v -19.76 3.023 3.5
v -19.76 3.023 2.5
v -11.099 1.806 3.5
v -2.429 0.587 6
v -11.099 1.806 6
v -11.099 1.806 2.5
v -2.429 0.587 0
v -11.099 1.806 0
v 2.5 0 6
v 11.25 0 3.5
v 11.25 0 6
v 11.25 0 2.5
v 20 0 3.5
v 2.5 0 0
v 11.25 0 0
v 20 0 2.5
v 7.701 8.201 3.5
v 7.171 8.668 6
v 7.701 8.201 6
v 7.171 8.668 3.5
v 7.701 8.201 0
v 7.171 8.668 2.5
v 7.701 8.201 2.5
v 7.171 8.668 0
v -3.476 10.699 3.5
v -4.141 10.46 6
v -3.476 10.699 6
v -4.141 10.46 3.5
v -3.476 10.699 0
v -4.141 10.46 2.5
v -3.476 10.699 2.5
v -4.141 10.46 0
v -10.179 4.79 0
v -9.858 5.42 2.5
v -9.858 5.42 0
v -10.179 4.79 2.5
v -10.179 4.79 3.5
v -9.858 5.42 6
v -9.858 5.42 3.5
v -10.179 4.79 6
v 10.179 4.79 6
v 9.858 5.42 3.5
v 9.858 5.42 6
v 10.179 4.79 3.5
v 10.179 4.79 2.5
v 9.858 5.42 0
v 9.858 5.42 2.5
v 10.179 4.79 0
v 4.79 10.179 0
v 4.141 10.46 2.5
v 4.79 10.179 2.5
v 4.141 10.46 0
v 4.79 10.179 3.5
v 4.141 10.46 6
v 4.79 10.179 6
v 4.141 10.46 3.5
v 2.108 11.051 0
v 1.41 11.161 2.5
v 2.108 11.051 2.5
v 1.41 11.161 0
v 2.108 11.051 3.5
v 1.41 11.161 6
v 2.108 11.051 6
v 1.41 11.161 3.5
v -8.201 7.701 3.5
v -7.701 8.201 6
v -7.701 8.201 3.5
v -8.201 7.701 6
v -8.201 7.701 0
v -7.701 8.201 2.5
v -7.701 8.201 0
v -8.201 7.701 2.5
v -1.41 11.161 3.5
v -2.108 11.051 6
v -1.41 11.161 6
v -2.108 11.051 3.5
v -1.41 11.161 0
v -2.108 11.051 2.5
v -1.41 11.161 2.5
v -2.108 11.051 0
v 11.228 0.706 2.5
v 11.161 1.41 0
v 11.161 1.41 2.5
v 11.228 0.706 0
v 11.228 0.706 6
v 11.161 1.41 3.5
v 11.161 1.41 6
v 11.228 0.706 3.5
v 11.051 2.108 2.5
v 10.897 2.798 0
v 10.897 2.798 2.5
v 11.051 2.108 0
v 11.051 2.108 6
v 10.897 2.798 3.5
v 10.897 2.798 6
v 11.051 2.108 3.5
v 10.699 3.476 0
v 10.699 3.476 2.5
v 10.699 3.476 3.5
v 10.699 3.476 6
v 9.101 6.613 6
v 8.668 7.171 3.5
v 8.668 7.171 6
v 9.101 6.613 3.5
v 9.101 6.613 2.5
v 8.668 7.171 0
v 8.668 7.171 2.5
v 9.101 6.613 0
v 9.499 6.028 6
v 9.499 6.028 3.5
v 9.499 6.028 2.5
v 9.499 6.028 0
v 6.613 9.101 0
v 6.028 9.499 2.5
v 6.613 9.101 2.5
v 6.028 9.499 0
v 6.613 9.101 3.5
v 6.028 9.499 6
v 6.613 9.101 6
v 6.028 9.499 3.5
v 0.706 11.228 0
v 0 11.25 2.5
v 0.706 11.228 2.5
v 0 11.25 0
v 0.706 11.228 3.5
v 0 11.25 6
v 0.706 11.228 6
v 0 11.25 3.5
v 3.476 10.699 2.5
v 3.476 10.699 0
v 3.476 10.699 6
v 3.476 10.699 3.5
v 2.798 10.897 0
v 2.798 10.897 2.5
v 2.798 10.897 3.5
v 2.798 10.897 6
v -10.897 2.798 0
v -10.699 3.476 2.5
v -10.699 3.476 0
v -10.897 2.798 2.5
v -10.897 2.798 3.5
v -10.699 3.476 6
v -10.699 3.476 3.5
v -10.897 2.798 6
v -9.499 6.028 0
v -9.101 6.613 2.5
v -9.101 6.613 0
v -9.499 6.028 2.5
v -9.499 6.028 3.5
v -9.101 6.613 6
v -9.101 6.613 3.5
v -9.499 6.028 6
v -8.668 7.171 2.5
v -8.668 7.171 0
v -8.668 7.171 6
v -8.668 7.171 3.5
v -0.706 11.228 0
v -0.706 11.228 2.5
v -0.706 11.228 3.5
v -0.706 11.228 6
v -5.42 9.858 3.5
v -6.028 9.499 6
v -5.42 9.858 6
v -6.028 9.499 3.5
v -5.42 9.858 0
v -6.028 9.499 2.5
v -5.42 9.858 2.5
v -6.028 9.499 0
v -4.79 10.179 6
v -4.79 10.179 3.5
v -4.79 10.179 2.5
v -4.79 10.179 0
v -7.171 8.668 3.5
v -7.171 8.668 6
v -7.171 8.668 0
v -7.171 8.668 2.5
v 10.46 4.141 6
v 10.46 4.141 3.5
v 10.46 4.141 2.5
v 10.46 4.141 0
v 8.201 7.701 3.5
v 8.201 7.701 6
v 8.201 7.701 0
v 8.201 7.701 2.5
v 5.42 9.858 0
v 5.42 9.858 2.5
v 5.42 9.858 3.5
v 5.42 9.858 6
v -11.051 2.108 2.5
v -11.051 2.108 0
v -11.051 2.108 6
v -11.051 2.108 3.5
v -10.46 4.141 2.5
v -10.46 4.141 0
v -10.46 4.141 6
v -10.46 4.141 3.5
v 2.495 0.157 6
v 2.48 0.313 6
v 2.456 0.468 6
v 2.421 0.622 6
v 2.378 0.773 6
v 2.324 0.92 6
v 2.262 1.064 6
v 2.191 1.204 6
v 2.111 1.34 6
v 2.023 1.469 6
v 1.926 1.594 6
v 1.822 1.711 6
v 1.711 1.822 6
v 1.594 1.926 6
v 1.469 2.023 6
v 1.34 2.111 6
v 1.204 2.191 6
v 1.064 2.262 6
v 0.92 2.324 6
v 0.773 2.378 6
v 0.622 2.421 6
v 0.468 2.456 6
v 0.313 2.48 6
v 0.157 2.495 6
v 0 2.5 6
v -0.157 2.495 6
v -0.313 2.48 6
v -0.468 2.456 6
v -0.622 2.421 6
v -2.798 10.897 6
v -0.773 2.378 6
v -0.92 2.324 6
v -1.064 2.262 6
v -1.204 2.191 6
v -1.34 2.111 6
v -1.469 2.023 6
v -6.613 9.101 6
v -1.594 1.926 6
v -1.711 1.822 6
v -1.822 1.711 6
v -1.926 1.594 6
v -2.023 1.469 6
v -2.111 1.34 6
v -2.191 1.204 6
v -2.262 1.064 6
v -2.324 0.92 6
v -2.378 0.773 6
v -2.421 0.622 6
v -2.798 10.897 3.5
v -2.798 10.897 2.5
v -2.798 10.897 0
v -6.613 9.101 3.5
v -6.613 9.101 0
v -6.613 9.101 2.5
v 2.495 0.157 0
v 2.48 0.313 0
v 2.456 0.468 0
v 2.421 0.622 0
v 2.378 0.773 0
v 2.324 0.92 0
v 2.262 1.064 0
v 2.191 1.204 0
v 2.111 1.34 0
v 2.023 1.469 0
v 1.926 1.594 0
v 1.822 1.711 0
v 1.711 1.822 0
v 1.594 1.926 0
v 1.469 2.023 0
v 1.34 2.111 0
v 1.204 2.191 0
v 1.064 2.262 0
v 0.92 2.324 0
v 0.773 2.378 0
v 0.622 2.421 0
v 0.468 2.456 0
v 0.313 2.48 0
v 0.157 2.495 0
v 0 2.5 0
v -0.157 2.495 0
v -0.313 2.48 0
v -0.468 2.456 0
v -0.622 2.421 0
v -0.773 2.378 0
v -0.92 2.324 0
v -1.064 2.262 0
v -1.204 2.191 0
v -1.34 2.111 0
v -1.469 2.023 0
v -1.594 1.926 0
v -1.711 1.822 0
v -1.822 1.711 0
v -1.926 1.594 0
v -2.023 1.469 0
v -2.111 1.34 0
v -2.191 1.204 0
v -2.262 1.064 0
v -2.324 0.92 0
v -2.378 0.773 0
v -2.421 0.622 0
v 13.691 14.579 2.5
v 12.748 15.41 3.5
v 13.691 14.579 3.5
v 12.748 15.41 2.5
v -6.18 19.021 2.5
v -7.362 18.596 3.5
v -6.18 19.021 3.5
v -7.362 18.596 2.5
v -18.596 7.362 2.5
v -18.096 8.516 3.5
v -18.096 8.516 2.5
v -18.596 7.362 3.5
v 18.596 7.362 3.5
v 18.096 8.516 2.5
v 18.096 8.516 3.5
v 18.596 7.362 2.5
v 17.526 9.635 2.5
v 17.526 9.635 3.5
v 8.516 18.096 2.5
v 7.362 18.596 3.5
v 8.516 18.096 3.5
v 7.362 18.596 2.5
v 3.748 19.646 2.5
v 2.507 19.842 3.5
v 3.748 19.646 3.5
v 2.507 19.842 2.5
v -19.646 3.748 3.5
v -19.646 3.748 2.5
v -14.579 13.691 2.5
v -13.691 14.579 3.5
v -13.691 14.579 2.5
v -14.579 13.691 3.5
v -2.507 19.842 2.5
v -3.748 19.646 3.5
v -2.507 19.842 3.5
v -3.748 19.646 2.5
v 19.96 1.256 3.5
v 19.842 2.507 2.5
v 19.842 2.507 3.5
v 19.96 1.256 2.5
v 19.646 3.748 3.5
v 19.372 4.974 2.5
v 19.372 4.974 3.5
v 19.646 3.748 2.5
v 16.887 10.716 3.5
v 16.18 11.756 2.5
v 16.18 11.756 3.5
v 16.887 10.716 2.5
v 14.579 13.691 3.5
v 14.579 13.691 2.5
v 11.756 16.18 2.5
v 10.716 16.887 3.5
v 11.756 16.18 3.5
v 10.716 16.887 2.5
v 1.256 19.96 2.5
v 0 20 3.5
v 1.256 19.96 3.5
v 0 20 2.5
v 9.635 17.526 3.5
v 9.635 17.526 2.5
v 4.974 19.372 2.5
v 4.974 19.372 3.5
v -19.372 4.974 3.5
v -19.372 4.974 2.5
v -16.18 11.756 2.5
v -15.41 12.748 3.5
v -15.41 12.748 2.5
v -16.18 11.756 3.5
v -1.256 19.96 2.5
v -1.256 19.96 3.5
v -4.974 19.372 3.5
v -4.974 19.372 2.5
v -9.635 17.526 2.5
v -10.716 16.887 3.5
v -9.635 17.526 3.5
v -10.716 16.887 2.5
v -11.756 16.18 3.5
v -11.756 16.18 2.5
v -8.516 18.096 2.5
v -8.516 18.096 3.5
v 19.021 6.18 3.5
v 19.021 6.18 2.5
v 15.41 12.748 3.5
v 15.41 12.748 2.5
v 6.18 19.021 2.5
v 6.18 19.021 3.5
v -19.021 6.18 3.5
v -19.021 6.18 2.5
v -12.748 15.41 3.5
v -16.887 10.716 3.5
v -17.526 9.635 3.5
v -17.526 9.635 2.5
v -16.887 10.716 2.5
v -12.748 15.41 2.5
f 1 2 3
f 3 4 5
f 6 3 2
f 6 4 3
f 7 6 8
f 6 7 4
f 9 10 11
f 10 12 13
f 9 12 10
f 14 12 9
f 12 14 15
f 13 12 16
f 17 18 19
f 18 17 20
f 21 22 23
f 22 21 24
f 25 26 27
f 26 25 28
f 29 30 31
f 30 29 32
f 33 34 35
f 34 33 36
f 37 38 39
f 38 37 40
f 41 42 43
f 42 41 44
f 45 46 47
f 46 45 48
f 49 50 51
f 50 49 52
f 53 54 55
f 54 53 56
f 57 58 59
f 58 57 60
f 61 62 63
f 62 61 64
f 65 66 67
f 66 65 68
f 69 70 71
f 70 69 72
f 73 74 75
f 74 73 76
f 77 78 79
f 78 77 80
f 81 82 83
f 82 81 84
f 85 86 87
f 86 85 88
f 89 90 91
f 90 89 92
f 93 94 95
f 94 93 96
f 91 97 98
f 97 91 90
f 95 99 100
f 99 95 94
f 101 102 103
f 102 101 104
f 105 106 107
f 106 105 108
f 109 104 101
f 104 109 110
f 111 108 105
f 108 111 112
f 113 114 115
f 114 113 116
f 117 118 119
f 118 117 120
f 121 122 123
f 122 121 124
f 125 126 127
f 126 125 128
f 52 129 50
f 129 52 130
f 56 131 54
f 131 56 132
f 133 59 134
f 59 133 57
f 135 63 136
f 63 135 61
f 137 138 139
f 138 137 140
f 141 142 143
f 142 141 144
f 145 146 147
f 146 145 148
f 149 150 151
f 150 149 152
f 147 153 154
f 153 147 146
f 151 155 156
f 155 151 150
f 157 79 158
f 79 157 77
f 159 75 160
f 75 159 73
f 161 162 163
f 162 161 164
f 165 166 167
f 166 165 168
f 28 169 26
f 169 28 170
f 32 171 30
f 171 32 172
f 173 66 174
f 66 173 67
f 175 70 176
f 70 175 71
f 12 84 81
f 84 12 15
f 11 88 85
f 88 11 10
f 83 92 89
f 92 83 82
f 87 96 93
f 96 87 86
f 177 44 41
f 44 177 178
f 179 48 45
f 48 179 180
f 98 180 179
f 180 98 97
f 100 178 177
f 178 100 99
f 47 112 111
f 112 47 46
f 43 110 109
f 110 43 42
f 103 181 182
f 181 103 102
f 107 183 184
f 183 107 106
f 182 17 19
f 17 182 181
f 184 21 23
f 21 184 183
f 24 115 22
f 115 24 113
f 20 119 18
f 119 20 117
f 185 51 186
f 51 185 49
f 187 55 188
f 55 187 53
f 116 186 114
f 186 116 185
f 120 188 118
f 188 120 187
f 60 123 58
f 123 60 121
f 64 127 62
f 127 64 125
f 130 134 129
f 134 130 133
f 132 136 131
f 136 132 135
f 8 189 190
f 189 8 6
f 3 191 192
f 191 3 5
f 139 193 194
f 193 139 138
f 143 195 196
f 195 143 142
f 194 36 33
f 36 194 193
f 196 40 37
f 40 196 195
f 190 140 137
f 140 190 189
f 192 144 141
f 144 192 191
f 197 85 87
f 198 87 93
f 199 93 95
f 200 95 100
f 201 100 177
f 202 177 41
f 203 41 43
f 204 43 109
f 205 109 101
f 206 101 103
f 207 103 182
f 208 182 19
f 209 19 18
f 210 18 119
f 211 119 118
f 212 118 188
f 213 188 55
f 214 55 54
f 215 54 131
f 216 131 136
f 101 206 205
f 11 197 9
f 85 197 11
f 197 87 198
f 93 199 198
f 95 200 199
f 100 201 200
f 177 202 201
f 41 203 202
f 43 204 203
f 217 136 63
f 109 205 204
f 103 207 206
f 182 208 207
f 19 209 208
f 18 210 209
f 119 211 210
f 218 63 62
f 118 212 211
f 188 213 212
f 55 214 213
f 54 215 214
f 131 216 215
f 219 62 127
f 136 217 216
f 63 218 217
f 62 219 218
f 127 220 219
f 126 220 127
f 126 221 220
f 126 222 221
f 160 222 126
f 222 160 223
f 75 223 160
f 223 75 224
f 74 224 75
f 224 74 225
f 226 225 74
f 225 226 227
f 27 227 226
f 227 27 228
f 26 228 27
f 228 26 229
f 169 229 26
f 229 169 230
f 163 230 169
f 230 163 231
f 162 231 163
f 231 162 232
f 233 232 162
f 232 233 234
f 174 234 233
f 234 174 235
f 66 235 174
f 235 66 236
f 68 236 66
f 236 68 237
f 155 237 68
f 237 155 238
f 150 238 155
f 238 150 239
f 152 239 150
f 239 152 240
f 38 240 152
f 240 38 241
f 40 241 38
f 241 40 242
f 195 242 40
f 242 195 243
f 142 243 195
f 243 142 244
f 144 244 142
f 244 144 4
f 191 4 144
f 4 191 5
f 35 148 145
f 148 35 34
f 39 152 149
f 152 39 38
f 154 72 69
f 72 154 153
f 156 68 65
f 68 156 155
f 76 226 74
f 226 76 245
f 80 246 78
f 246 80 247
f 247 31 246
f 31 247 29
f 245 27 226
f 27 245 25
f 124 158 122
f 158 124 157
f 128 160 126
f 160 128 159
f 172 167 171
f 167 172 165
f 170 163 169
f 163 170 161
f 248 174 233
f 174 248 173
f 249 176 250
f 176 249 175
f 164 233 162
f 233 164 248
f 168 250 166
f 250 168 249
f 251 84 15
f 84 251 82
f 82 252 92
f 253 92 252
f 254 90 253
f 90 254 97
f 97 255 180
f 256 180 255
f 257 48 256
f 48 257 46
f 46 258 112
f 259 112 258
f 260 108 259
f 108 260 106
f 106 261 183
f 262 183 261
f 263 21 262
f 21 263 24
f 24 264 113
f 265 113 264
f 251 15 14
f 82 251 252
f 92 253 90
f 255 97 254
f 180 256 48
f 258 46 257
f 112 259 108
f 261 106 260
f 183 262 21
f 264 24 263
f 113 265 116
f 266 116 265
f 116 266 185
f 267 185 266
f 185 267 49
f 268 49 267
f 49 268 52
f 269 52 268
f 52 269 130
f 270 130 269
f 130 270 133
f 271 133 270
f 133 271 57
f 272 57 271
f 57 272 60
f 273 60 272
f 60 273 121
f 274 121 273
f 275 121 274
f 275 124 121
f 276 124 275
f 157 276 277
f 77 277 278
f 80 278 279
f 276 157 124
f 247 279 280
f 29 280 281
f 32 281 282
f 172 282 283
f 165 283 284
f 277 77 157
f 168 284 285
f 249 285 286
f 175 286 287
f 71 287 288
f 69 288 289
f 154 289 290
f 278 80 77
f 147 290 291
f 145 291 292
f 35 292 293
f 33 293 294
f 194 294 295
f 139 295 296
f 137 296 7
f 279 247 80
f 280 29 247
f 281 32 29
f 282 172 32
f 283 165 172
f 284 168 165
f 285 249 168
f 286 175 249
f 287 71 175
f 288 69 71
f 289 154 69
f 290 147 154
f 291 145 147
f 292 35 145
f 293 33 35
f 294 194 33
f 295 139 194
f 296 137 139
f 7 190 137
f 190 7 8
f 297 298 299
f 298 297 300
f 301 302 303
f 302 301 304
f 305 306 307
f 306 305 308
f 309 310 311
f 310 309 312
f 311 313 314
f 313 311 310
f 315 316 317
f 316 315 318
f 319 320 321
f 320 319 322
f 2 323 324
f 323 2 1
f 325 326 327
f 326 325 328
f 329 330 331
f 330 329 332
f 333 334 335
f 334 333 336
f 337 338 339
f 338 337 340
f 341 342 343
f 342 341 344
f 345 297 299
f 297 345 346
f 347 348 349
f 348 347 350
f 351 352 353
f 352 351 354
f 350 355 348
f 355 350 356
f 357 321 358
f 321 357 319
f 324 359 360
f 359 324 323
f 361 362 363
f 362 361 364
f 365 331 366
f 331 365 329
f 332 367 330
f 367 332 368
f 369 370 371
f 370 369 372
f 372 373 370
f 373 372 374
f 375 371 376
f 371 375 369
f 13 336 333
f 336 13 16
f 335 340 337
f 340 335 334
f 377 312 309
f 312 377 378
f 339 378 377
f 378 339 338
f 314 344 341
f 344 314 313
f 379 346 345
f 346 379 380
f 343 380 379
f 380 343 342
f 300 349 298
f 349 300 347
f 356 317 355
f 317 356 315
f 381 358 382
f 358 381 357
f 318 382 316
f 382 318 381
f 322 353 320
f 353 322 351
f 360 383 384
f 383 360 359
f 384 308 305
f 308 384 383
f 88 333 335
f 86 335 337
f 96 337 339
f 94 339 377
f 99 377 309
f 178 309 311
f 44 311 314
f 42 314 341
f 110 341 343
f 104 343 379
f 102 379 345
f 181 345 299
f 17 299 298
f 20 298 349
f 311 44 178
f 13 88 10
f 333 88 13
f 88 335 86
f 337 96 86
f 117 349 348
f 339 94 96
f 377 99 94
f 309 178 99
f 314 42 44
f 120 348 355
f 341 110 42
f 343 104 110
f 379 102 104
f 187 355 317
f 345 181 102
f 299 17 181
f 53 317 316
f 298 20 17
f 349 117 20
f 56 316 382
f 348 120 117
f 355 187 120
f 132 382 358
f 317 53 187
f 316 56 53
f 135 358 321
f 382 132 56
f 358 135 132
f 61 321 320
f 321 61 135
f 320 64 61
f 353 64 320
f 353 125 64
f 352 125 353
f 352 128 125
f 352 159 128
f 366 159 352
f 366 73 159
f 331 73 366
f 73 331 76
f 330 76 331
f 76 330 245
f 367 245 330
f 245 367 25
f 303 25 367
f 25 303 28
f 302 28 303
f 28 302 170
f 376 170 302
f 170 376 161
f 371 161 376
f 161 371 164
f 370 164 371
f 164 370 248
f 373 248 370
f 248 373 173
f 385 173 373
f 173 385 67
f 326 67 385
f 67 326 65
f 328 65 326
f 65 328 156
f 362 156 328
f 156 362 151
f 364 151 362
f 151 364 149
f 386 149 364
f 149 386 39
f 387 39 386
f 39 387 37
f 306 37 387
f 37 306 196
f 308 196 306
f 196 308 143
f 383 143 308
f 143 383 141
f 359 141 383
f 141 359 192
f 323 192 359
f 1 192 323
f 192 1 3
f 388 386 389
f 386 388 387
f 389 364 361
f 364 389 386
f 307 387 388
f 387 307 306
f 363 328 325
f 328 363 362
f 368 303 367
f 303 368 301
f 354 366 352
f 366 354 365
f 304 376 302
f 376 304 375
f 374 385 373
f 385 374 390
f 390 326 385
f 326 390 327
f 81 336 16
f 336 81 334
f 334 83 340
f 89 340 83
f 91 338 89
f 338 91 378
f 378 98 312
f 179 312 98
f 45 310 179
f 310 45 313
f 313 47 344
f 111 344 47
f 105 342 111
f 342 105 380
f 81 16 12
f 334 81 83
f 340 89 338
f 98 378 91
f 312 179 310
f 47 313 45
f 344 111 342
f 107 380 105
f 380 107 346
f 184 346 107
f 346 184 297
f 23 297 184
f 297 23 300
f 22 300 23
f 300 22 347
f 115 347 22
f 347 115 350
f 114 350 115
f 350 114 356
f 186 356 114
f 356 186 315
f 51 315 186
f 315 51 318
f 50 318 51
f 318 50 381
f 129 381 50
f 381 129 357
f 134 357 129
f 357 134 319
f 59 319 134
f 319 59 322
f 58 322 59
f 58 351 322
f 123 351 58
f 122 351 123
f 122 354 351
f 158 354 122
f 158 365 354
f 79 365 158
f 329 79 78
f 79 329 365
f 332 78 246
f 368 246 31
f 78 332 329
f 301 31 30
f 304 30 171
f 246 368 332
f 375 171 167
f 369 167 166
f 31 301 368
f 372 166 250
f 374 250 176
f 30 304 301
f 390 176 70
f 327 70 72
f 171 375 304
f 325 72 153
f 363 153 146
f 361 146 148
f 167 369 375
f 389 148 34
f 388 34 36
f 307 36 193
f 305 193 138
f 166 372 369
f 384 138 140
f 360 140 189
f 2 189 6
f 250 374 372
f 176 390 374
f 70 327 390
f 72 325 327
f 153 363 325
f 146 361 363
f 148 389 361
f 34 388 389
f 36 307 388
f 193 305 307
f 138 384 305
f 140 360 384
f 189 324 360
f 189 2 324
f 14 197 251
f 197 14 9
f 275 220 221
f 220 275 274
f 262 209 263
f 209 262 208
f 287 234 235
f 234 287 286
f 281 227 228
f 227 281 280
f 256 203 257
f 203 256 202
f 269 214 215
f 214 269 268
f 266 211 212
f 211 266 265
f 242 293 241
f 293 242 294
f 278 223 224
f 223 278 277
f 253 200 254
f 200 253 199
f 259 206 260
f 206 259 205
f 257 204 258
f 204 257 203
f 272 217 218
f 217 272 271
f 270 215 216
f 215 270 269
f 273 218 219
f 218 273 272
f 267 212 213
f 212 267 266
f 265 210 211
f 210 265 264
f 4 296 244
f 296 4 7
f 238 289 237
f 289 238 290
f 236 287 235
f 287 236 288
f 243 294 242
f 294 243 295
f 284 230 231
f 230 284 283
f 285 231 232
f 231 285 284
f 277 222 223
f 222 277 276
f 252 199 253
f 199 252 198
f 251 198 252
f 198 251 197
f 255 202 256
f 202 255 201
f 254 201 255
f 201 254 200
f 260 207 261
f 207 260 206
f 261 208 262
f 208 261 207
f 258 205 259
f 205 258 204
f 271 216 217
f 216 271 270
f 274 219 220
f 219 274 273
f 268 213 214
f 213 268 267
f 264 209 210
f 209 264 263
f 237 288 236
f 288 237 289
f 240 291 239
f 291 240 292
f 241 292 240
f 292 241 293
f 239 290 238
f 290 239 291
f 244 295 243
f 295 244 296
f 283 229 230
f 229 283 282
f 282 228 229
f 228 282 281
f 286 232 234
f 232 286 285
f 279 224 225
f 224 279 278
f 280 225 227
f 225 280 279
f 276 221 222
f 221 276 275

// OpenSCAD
// Elevevator Support for RM F104
/* This makes a 3D model for a support for the elevator on the tail.
 * The parameters are given below in mm.
 * The construction method is:
 * 1. make a circular plate,
 * 2. put a circular insert on top of it
 * 3. put another circular plate on top of that.
 * 4. then from all that subtract:
 *    4a. a rod of correct diameter, correctly positioned,
 *    4b. 2 cubes that have been rotated to the proper angles and postioned correctly.
 * 5. the end result is produced by the call to 'support();'
 */

// all dimensions are millimeters
rodDia = 5.0;  // diameter of rod to be glued to support
foamThickness = 6.0;  // foam thickness so as to make it flush
plateThickness = 1.0;  // support plates sandwich walls
plateDia = 40.0;   // diameter of plate
insertThickness = foamThickness;// - 2.0*plateThickness;  // width of the inner piece
insertDia = (plateDia + rodDia)/2.0;  // diameter of inner piece
forAngle = -8.0;  // angle of forward slope
aftAngle = 0.0;  // angle of rearward slope

// do not change these!
epsilon = 10.0;  // used to ensure that there are no close misses
$fn = 100;  // curve resolution

module plate(dia, ht){
    cylinder(d=dia,h=ht);
}

module insert(d,t){
    cylinder(d=d,h=t);
}

module rod(d,ht){
    translate([0,0,0]){
        cylinder(d=d,h=ht,center=true);
    }
}

module cutter(d,h){
    translate([0,-(d+epsilon)/2.0,0]){
        union(){
            rotate(forAngle){
                cube(d+epsilon,+epsilon,h+epsilon,center=true);
            }
            rotate(aftAngle){
                cube(d+epsilon,+epsilon,h+epsilon,center=true);
            }
        }
    }
}
module support(){
    difference(){
        union(){
           // translate([0,0,plateThickness]){
                insert(insertDia,insertThickness);
            //}
            translate([0,0,insertThickness/2.0-plateThickness/2.0]){
                plate(plateDia,plateThickness);
            }
        }
        cutter(plateDia,foamThickness*2.0);
        rod(rodDia,foamThickness*3.0);
    }
}
support();
